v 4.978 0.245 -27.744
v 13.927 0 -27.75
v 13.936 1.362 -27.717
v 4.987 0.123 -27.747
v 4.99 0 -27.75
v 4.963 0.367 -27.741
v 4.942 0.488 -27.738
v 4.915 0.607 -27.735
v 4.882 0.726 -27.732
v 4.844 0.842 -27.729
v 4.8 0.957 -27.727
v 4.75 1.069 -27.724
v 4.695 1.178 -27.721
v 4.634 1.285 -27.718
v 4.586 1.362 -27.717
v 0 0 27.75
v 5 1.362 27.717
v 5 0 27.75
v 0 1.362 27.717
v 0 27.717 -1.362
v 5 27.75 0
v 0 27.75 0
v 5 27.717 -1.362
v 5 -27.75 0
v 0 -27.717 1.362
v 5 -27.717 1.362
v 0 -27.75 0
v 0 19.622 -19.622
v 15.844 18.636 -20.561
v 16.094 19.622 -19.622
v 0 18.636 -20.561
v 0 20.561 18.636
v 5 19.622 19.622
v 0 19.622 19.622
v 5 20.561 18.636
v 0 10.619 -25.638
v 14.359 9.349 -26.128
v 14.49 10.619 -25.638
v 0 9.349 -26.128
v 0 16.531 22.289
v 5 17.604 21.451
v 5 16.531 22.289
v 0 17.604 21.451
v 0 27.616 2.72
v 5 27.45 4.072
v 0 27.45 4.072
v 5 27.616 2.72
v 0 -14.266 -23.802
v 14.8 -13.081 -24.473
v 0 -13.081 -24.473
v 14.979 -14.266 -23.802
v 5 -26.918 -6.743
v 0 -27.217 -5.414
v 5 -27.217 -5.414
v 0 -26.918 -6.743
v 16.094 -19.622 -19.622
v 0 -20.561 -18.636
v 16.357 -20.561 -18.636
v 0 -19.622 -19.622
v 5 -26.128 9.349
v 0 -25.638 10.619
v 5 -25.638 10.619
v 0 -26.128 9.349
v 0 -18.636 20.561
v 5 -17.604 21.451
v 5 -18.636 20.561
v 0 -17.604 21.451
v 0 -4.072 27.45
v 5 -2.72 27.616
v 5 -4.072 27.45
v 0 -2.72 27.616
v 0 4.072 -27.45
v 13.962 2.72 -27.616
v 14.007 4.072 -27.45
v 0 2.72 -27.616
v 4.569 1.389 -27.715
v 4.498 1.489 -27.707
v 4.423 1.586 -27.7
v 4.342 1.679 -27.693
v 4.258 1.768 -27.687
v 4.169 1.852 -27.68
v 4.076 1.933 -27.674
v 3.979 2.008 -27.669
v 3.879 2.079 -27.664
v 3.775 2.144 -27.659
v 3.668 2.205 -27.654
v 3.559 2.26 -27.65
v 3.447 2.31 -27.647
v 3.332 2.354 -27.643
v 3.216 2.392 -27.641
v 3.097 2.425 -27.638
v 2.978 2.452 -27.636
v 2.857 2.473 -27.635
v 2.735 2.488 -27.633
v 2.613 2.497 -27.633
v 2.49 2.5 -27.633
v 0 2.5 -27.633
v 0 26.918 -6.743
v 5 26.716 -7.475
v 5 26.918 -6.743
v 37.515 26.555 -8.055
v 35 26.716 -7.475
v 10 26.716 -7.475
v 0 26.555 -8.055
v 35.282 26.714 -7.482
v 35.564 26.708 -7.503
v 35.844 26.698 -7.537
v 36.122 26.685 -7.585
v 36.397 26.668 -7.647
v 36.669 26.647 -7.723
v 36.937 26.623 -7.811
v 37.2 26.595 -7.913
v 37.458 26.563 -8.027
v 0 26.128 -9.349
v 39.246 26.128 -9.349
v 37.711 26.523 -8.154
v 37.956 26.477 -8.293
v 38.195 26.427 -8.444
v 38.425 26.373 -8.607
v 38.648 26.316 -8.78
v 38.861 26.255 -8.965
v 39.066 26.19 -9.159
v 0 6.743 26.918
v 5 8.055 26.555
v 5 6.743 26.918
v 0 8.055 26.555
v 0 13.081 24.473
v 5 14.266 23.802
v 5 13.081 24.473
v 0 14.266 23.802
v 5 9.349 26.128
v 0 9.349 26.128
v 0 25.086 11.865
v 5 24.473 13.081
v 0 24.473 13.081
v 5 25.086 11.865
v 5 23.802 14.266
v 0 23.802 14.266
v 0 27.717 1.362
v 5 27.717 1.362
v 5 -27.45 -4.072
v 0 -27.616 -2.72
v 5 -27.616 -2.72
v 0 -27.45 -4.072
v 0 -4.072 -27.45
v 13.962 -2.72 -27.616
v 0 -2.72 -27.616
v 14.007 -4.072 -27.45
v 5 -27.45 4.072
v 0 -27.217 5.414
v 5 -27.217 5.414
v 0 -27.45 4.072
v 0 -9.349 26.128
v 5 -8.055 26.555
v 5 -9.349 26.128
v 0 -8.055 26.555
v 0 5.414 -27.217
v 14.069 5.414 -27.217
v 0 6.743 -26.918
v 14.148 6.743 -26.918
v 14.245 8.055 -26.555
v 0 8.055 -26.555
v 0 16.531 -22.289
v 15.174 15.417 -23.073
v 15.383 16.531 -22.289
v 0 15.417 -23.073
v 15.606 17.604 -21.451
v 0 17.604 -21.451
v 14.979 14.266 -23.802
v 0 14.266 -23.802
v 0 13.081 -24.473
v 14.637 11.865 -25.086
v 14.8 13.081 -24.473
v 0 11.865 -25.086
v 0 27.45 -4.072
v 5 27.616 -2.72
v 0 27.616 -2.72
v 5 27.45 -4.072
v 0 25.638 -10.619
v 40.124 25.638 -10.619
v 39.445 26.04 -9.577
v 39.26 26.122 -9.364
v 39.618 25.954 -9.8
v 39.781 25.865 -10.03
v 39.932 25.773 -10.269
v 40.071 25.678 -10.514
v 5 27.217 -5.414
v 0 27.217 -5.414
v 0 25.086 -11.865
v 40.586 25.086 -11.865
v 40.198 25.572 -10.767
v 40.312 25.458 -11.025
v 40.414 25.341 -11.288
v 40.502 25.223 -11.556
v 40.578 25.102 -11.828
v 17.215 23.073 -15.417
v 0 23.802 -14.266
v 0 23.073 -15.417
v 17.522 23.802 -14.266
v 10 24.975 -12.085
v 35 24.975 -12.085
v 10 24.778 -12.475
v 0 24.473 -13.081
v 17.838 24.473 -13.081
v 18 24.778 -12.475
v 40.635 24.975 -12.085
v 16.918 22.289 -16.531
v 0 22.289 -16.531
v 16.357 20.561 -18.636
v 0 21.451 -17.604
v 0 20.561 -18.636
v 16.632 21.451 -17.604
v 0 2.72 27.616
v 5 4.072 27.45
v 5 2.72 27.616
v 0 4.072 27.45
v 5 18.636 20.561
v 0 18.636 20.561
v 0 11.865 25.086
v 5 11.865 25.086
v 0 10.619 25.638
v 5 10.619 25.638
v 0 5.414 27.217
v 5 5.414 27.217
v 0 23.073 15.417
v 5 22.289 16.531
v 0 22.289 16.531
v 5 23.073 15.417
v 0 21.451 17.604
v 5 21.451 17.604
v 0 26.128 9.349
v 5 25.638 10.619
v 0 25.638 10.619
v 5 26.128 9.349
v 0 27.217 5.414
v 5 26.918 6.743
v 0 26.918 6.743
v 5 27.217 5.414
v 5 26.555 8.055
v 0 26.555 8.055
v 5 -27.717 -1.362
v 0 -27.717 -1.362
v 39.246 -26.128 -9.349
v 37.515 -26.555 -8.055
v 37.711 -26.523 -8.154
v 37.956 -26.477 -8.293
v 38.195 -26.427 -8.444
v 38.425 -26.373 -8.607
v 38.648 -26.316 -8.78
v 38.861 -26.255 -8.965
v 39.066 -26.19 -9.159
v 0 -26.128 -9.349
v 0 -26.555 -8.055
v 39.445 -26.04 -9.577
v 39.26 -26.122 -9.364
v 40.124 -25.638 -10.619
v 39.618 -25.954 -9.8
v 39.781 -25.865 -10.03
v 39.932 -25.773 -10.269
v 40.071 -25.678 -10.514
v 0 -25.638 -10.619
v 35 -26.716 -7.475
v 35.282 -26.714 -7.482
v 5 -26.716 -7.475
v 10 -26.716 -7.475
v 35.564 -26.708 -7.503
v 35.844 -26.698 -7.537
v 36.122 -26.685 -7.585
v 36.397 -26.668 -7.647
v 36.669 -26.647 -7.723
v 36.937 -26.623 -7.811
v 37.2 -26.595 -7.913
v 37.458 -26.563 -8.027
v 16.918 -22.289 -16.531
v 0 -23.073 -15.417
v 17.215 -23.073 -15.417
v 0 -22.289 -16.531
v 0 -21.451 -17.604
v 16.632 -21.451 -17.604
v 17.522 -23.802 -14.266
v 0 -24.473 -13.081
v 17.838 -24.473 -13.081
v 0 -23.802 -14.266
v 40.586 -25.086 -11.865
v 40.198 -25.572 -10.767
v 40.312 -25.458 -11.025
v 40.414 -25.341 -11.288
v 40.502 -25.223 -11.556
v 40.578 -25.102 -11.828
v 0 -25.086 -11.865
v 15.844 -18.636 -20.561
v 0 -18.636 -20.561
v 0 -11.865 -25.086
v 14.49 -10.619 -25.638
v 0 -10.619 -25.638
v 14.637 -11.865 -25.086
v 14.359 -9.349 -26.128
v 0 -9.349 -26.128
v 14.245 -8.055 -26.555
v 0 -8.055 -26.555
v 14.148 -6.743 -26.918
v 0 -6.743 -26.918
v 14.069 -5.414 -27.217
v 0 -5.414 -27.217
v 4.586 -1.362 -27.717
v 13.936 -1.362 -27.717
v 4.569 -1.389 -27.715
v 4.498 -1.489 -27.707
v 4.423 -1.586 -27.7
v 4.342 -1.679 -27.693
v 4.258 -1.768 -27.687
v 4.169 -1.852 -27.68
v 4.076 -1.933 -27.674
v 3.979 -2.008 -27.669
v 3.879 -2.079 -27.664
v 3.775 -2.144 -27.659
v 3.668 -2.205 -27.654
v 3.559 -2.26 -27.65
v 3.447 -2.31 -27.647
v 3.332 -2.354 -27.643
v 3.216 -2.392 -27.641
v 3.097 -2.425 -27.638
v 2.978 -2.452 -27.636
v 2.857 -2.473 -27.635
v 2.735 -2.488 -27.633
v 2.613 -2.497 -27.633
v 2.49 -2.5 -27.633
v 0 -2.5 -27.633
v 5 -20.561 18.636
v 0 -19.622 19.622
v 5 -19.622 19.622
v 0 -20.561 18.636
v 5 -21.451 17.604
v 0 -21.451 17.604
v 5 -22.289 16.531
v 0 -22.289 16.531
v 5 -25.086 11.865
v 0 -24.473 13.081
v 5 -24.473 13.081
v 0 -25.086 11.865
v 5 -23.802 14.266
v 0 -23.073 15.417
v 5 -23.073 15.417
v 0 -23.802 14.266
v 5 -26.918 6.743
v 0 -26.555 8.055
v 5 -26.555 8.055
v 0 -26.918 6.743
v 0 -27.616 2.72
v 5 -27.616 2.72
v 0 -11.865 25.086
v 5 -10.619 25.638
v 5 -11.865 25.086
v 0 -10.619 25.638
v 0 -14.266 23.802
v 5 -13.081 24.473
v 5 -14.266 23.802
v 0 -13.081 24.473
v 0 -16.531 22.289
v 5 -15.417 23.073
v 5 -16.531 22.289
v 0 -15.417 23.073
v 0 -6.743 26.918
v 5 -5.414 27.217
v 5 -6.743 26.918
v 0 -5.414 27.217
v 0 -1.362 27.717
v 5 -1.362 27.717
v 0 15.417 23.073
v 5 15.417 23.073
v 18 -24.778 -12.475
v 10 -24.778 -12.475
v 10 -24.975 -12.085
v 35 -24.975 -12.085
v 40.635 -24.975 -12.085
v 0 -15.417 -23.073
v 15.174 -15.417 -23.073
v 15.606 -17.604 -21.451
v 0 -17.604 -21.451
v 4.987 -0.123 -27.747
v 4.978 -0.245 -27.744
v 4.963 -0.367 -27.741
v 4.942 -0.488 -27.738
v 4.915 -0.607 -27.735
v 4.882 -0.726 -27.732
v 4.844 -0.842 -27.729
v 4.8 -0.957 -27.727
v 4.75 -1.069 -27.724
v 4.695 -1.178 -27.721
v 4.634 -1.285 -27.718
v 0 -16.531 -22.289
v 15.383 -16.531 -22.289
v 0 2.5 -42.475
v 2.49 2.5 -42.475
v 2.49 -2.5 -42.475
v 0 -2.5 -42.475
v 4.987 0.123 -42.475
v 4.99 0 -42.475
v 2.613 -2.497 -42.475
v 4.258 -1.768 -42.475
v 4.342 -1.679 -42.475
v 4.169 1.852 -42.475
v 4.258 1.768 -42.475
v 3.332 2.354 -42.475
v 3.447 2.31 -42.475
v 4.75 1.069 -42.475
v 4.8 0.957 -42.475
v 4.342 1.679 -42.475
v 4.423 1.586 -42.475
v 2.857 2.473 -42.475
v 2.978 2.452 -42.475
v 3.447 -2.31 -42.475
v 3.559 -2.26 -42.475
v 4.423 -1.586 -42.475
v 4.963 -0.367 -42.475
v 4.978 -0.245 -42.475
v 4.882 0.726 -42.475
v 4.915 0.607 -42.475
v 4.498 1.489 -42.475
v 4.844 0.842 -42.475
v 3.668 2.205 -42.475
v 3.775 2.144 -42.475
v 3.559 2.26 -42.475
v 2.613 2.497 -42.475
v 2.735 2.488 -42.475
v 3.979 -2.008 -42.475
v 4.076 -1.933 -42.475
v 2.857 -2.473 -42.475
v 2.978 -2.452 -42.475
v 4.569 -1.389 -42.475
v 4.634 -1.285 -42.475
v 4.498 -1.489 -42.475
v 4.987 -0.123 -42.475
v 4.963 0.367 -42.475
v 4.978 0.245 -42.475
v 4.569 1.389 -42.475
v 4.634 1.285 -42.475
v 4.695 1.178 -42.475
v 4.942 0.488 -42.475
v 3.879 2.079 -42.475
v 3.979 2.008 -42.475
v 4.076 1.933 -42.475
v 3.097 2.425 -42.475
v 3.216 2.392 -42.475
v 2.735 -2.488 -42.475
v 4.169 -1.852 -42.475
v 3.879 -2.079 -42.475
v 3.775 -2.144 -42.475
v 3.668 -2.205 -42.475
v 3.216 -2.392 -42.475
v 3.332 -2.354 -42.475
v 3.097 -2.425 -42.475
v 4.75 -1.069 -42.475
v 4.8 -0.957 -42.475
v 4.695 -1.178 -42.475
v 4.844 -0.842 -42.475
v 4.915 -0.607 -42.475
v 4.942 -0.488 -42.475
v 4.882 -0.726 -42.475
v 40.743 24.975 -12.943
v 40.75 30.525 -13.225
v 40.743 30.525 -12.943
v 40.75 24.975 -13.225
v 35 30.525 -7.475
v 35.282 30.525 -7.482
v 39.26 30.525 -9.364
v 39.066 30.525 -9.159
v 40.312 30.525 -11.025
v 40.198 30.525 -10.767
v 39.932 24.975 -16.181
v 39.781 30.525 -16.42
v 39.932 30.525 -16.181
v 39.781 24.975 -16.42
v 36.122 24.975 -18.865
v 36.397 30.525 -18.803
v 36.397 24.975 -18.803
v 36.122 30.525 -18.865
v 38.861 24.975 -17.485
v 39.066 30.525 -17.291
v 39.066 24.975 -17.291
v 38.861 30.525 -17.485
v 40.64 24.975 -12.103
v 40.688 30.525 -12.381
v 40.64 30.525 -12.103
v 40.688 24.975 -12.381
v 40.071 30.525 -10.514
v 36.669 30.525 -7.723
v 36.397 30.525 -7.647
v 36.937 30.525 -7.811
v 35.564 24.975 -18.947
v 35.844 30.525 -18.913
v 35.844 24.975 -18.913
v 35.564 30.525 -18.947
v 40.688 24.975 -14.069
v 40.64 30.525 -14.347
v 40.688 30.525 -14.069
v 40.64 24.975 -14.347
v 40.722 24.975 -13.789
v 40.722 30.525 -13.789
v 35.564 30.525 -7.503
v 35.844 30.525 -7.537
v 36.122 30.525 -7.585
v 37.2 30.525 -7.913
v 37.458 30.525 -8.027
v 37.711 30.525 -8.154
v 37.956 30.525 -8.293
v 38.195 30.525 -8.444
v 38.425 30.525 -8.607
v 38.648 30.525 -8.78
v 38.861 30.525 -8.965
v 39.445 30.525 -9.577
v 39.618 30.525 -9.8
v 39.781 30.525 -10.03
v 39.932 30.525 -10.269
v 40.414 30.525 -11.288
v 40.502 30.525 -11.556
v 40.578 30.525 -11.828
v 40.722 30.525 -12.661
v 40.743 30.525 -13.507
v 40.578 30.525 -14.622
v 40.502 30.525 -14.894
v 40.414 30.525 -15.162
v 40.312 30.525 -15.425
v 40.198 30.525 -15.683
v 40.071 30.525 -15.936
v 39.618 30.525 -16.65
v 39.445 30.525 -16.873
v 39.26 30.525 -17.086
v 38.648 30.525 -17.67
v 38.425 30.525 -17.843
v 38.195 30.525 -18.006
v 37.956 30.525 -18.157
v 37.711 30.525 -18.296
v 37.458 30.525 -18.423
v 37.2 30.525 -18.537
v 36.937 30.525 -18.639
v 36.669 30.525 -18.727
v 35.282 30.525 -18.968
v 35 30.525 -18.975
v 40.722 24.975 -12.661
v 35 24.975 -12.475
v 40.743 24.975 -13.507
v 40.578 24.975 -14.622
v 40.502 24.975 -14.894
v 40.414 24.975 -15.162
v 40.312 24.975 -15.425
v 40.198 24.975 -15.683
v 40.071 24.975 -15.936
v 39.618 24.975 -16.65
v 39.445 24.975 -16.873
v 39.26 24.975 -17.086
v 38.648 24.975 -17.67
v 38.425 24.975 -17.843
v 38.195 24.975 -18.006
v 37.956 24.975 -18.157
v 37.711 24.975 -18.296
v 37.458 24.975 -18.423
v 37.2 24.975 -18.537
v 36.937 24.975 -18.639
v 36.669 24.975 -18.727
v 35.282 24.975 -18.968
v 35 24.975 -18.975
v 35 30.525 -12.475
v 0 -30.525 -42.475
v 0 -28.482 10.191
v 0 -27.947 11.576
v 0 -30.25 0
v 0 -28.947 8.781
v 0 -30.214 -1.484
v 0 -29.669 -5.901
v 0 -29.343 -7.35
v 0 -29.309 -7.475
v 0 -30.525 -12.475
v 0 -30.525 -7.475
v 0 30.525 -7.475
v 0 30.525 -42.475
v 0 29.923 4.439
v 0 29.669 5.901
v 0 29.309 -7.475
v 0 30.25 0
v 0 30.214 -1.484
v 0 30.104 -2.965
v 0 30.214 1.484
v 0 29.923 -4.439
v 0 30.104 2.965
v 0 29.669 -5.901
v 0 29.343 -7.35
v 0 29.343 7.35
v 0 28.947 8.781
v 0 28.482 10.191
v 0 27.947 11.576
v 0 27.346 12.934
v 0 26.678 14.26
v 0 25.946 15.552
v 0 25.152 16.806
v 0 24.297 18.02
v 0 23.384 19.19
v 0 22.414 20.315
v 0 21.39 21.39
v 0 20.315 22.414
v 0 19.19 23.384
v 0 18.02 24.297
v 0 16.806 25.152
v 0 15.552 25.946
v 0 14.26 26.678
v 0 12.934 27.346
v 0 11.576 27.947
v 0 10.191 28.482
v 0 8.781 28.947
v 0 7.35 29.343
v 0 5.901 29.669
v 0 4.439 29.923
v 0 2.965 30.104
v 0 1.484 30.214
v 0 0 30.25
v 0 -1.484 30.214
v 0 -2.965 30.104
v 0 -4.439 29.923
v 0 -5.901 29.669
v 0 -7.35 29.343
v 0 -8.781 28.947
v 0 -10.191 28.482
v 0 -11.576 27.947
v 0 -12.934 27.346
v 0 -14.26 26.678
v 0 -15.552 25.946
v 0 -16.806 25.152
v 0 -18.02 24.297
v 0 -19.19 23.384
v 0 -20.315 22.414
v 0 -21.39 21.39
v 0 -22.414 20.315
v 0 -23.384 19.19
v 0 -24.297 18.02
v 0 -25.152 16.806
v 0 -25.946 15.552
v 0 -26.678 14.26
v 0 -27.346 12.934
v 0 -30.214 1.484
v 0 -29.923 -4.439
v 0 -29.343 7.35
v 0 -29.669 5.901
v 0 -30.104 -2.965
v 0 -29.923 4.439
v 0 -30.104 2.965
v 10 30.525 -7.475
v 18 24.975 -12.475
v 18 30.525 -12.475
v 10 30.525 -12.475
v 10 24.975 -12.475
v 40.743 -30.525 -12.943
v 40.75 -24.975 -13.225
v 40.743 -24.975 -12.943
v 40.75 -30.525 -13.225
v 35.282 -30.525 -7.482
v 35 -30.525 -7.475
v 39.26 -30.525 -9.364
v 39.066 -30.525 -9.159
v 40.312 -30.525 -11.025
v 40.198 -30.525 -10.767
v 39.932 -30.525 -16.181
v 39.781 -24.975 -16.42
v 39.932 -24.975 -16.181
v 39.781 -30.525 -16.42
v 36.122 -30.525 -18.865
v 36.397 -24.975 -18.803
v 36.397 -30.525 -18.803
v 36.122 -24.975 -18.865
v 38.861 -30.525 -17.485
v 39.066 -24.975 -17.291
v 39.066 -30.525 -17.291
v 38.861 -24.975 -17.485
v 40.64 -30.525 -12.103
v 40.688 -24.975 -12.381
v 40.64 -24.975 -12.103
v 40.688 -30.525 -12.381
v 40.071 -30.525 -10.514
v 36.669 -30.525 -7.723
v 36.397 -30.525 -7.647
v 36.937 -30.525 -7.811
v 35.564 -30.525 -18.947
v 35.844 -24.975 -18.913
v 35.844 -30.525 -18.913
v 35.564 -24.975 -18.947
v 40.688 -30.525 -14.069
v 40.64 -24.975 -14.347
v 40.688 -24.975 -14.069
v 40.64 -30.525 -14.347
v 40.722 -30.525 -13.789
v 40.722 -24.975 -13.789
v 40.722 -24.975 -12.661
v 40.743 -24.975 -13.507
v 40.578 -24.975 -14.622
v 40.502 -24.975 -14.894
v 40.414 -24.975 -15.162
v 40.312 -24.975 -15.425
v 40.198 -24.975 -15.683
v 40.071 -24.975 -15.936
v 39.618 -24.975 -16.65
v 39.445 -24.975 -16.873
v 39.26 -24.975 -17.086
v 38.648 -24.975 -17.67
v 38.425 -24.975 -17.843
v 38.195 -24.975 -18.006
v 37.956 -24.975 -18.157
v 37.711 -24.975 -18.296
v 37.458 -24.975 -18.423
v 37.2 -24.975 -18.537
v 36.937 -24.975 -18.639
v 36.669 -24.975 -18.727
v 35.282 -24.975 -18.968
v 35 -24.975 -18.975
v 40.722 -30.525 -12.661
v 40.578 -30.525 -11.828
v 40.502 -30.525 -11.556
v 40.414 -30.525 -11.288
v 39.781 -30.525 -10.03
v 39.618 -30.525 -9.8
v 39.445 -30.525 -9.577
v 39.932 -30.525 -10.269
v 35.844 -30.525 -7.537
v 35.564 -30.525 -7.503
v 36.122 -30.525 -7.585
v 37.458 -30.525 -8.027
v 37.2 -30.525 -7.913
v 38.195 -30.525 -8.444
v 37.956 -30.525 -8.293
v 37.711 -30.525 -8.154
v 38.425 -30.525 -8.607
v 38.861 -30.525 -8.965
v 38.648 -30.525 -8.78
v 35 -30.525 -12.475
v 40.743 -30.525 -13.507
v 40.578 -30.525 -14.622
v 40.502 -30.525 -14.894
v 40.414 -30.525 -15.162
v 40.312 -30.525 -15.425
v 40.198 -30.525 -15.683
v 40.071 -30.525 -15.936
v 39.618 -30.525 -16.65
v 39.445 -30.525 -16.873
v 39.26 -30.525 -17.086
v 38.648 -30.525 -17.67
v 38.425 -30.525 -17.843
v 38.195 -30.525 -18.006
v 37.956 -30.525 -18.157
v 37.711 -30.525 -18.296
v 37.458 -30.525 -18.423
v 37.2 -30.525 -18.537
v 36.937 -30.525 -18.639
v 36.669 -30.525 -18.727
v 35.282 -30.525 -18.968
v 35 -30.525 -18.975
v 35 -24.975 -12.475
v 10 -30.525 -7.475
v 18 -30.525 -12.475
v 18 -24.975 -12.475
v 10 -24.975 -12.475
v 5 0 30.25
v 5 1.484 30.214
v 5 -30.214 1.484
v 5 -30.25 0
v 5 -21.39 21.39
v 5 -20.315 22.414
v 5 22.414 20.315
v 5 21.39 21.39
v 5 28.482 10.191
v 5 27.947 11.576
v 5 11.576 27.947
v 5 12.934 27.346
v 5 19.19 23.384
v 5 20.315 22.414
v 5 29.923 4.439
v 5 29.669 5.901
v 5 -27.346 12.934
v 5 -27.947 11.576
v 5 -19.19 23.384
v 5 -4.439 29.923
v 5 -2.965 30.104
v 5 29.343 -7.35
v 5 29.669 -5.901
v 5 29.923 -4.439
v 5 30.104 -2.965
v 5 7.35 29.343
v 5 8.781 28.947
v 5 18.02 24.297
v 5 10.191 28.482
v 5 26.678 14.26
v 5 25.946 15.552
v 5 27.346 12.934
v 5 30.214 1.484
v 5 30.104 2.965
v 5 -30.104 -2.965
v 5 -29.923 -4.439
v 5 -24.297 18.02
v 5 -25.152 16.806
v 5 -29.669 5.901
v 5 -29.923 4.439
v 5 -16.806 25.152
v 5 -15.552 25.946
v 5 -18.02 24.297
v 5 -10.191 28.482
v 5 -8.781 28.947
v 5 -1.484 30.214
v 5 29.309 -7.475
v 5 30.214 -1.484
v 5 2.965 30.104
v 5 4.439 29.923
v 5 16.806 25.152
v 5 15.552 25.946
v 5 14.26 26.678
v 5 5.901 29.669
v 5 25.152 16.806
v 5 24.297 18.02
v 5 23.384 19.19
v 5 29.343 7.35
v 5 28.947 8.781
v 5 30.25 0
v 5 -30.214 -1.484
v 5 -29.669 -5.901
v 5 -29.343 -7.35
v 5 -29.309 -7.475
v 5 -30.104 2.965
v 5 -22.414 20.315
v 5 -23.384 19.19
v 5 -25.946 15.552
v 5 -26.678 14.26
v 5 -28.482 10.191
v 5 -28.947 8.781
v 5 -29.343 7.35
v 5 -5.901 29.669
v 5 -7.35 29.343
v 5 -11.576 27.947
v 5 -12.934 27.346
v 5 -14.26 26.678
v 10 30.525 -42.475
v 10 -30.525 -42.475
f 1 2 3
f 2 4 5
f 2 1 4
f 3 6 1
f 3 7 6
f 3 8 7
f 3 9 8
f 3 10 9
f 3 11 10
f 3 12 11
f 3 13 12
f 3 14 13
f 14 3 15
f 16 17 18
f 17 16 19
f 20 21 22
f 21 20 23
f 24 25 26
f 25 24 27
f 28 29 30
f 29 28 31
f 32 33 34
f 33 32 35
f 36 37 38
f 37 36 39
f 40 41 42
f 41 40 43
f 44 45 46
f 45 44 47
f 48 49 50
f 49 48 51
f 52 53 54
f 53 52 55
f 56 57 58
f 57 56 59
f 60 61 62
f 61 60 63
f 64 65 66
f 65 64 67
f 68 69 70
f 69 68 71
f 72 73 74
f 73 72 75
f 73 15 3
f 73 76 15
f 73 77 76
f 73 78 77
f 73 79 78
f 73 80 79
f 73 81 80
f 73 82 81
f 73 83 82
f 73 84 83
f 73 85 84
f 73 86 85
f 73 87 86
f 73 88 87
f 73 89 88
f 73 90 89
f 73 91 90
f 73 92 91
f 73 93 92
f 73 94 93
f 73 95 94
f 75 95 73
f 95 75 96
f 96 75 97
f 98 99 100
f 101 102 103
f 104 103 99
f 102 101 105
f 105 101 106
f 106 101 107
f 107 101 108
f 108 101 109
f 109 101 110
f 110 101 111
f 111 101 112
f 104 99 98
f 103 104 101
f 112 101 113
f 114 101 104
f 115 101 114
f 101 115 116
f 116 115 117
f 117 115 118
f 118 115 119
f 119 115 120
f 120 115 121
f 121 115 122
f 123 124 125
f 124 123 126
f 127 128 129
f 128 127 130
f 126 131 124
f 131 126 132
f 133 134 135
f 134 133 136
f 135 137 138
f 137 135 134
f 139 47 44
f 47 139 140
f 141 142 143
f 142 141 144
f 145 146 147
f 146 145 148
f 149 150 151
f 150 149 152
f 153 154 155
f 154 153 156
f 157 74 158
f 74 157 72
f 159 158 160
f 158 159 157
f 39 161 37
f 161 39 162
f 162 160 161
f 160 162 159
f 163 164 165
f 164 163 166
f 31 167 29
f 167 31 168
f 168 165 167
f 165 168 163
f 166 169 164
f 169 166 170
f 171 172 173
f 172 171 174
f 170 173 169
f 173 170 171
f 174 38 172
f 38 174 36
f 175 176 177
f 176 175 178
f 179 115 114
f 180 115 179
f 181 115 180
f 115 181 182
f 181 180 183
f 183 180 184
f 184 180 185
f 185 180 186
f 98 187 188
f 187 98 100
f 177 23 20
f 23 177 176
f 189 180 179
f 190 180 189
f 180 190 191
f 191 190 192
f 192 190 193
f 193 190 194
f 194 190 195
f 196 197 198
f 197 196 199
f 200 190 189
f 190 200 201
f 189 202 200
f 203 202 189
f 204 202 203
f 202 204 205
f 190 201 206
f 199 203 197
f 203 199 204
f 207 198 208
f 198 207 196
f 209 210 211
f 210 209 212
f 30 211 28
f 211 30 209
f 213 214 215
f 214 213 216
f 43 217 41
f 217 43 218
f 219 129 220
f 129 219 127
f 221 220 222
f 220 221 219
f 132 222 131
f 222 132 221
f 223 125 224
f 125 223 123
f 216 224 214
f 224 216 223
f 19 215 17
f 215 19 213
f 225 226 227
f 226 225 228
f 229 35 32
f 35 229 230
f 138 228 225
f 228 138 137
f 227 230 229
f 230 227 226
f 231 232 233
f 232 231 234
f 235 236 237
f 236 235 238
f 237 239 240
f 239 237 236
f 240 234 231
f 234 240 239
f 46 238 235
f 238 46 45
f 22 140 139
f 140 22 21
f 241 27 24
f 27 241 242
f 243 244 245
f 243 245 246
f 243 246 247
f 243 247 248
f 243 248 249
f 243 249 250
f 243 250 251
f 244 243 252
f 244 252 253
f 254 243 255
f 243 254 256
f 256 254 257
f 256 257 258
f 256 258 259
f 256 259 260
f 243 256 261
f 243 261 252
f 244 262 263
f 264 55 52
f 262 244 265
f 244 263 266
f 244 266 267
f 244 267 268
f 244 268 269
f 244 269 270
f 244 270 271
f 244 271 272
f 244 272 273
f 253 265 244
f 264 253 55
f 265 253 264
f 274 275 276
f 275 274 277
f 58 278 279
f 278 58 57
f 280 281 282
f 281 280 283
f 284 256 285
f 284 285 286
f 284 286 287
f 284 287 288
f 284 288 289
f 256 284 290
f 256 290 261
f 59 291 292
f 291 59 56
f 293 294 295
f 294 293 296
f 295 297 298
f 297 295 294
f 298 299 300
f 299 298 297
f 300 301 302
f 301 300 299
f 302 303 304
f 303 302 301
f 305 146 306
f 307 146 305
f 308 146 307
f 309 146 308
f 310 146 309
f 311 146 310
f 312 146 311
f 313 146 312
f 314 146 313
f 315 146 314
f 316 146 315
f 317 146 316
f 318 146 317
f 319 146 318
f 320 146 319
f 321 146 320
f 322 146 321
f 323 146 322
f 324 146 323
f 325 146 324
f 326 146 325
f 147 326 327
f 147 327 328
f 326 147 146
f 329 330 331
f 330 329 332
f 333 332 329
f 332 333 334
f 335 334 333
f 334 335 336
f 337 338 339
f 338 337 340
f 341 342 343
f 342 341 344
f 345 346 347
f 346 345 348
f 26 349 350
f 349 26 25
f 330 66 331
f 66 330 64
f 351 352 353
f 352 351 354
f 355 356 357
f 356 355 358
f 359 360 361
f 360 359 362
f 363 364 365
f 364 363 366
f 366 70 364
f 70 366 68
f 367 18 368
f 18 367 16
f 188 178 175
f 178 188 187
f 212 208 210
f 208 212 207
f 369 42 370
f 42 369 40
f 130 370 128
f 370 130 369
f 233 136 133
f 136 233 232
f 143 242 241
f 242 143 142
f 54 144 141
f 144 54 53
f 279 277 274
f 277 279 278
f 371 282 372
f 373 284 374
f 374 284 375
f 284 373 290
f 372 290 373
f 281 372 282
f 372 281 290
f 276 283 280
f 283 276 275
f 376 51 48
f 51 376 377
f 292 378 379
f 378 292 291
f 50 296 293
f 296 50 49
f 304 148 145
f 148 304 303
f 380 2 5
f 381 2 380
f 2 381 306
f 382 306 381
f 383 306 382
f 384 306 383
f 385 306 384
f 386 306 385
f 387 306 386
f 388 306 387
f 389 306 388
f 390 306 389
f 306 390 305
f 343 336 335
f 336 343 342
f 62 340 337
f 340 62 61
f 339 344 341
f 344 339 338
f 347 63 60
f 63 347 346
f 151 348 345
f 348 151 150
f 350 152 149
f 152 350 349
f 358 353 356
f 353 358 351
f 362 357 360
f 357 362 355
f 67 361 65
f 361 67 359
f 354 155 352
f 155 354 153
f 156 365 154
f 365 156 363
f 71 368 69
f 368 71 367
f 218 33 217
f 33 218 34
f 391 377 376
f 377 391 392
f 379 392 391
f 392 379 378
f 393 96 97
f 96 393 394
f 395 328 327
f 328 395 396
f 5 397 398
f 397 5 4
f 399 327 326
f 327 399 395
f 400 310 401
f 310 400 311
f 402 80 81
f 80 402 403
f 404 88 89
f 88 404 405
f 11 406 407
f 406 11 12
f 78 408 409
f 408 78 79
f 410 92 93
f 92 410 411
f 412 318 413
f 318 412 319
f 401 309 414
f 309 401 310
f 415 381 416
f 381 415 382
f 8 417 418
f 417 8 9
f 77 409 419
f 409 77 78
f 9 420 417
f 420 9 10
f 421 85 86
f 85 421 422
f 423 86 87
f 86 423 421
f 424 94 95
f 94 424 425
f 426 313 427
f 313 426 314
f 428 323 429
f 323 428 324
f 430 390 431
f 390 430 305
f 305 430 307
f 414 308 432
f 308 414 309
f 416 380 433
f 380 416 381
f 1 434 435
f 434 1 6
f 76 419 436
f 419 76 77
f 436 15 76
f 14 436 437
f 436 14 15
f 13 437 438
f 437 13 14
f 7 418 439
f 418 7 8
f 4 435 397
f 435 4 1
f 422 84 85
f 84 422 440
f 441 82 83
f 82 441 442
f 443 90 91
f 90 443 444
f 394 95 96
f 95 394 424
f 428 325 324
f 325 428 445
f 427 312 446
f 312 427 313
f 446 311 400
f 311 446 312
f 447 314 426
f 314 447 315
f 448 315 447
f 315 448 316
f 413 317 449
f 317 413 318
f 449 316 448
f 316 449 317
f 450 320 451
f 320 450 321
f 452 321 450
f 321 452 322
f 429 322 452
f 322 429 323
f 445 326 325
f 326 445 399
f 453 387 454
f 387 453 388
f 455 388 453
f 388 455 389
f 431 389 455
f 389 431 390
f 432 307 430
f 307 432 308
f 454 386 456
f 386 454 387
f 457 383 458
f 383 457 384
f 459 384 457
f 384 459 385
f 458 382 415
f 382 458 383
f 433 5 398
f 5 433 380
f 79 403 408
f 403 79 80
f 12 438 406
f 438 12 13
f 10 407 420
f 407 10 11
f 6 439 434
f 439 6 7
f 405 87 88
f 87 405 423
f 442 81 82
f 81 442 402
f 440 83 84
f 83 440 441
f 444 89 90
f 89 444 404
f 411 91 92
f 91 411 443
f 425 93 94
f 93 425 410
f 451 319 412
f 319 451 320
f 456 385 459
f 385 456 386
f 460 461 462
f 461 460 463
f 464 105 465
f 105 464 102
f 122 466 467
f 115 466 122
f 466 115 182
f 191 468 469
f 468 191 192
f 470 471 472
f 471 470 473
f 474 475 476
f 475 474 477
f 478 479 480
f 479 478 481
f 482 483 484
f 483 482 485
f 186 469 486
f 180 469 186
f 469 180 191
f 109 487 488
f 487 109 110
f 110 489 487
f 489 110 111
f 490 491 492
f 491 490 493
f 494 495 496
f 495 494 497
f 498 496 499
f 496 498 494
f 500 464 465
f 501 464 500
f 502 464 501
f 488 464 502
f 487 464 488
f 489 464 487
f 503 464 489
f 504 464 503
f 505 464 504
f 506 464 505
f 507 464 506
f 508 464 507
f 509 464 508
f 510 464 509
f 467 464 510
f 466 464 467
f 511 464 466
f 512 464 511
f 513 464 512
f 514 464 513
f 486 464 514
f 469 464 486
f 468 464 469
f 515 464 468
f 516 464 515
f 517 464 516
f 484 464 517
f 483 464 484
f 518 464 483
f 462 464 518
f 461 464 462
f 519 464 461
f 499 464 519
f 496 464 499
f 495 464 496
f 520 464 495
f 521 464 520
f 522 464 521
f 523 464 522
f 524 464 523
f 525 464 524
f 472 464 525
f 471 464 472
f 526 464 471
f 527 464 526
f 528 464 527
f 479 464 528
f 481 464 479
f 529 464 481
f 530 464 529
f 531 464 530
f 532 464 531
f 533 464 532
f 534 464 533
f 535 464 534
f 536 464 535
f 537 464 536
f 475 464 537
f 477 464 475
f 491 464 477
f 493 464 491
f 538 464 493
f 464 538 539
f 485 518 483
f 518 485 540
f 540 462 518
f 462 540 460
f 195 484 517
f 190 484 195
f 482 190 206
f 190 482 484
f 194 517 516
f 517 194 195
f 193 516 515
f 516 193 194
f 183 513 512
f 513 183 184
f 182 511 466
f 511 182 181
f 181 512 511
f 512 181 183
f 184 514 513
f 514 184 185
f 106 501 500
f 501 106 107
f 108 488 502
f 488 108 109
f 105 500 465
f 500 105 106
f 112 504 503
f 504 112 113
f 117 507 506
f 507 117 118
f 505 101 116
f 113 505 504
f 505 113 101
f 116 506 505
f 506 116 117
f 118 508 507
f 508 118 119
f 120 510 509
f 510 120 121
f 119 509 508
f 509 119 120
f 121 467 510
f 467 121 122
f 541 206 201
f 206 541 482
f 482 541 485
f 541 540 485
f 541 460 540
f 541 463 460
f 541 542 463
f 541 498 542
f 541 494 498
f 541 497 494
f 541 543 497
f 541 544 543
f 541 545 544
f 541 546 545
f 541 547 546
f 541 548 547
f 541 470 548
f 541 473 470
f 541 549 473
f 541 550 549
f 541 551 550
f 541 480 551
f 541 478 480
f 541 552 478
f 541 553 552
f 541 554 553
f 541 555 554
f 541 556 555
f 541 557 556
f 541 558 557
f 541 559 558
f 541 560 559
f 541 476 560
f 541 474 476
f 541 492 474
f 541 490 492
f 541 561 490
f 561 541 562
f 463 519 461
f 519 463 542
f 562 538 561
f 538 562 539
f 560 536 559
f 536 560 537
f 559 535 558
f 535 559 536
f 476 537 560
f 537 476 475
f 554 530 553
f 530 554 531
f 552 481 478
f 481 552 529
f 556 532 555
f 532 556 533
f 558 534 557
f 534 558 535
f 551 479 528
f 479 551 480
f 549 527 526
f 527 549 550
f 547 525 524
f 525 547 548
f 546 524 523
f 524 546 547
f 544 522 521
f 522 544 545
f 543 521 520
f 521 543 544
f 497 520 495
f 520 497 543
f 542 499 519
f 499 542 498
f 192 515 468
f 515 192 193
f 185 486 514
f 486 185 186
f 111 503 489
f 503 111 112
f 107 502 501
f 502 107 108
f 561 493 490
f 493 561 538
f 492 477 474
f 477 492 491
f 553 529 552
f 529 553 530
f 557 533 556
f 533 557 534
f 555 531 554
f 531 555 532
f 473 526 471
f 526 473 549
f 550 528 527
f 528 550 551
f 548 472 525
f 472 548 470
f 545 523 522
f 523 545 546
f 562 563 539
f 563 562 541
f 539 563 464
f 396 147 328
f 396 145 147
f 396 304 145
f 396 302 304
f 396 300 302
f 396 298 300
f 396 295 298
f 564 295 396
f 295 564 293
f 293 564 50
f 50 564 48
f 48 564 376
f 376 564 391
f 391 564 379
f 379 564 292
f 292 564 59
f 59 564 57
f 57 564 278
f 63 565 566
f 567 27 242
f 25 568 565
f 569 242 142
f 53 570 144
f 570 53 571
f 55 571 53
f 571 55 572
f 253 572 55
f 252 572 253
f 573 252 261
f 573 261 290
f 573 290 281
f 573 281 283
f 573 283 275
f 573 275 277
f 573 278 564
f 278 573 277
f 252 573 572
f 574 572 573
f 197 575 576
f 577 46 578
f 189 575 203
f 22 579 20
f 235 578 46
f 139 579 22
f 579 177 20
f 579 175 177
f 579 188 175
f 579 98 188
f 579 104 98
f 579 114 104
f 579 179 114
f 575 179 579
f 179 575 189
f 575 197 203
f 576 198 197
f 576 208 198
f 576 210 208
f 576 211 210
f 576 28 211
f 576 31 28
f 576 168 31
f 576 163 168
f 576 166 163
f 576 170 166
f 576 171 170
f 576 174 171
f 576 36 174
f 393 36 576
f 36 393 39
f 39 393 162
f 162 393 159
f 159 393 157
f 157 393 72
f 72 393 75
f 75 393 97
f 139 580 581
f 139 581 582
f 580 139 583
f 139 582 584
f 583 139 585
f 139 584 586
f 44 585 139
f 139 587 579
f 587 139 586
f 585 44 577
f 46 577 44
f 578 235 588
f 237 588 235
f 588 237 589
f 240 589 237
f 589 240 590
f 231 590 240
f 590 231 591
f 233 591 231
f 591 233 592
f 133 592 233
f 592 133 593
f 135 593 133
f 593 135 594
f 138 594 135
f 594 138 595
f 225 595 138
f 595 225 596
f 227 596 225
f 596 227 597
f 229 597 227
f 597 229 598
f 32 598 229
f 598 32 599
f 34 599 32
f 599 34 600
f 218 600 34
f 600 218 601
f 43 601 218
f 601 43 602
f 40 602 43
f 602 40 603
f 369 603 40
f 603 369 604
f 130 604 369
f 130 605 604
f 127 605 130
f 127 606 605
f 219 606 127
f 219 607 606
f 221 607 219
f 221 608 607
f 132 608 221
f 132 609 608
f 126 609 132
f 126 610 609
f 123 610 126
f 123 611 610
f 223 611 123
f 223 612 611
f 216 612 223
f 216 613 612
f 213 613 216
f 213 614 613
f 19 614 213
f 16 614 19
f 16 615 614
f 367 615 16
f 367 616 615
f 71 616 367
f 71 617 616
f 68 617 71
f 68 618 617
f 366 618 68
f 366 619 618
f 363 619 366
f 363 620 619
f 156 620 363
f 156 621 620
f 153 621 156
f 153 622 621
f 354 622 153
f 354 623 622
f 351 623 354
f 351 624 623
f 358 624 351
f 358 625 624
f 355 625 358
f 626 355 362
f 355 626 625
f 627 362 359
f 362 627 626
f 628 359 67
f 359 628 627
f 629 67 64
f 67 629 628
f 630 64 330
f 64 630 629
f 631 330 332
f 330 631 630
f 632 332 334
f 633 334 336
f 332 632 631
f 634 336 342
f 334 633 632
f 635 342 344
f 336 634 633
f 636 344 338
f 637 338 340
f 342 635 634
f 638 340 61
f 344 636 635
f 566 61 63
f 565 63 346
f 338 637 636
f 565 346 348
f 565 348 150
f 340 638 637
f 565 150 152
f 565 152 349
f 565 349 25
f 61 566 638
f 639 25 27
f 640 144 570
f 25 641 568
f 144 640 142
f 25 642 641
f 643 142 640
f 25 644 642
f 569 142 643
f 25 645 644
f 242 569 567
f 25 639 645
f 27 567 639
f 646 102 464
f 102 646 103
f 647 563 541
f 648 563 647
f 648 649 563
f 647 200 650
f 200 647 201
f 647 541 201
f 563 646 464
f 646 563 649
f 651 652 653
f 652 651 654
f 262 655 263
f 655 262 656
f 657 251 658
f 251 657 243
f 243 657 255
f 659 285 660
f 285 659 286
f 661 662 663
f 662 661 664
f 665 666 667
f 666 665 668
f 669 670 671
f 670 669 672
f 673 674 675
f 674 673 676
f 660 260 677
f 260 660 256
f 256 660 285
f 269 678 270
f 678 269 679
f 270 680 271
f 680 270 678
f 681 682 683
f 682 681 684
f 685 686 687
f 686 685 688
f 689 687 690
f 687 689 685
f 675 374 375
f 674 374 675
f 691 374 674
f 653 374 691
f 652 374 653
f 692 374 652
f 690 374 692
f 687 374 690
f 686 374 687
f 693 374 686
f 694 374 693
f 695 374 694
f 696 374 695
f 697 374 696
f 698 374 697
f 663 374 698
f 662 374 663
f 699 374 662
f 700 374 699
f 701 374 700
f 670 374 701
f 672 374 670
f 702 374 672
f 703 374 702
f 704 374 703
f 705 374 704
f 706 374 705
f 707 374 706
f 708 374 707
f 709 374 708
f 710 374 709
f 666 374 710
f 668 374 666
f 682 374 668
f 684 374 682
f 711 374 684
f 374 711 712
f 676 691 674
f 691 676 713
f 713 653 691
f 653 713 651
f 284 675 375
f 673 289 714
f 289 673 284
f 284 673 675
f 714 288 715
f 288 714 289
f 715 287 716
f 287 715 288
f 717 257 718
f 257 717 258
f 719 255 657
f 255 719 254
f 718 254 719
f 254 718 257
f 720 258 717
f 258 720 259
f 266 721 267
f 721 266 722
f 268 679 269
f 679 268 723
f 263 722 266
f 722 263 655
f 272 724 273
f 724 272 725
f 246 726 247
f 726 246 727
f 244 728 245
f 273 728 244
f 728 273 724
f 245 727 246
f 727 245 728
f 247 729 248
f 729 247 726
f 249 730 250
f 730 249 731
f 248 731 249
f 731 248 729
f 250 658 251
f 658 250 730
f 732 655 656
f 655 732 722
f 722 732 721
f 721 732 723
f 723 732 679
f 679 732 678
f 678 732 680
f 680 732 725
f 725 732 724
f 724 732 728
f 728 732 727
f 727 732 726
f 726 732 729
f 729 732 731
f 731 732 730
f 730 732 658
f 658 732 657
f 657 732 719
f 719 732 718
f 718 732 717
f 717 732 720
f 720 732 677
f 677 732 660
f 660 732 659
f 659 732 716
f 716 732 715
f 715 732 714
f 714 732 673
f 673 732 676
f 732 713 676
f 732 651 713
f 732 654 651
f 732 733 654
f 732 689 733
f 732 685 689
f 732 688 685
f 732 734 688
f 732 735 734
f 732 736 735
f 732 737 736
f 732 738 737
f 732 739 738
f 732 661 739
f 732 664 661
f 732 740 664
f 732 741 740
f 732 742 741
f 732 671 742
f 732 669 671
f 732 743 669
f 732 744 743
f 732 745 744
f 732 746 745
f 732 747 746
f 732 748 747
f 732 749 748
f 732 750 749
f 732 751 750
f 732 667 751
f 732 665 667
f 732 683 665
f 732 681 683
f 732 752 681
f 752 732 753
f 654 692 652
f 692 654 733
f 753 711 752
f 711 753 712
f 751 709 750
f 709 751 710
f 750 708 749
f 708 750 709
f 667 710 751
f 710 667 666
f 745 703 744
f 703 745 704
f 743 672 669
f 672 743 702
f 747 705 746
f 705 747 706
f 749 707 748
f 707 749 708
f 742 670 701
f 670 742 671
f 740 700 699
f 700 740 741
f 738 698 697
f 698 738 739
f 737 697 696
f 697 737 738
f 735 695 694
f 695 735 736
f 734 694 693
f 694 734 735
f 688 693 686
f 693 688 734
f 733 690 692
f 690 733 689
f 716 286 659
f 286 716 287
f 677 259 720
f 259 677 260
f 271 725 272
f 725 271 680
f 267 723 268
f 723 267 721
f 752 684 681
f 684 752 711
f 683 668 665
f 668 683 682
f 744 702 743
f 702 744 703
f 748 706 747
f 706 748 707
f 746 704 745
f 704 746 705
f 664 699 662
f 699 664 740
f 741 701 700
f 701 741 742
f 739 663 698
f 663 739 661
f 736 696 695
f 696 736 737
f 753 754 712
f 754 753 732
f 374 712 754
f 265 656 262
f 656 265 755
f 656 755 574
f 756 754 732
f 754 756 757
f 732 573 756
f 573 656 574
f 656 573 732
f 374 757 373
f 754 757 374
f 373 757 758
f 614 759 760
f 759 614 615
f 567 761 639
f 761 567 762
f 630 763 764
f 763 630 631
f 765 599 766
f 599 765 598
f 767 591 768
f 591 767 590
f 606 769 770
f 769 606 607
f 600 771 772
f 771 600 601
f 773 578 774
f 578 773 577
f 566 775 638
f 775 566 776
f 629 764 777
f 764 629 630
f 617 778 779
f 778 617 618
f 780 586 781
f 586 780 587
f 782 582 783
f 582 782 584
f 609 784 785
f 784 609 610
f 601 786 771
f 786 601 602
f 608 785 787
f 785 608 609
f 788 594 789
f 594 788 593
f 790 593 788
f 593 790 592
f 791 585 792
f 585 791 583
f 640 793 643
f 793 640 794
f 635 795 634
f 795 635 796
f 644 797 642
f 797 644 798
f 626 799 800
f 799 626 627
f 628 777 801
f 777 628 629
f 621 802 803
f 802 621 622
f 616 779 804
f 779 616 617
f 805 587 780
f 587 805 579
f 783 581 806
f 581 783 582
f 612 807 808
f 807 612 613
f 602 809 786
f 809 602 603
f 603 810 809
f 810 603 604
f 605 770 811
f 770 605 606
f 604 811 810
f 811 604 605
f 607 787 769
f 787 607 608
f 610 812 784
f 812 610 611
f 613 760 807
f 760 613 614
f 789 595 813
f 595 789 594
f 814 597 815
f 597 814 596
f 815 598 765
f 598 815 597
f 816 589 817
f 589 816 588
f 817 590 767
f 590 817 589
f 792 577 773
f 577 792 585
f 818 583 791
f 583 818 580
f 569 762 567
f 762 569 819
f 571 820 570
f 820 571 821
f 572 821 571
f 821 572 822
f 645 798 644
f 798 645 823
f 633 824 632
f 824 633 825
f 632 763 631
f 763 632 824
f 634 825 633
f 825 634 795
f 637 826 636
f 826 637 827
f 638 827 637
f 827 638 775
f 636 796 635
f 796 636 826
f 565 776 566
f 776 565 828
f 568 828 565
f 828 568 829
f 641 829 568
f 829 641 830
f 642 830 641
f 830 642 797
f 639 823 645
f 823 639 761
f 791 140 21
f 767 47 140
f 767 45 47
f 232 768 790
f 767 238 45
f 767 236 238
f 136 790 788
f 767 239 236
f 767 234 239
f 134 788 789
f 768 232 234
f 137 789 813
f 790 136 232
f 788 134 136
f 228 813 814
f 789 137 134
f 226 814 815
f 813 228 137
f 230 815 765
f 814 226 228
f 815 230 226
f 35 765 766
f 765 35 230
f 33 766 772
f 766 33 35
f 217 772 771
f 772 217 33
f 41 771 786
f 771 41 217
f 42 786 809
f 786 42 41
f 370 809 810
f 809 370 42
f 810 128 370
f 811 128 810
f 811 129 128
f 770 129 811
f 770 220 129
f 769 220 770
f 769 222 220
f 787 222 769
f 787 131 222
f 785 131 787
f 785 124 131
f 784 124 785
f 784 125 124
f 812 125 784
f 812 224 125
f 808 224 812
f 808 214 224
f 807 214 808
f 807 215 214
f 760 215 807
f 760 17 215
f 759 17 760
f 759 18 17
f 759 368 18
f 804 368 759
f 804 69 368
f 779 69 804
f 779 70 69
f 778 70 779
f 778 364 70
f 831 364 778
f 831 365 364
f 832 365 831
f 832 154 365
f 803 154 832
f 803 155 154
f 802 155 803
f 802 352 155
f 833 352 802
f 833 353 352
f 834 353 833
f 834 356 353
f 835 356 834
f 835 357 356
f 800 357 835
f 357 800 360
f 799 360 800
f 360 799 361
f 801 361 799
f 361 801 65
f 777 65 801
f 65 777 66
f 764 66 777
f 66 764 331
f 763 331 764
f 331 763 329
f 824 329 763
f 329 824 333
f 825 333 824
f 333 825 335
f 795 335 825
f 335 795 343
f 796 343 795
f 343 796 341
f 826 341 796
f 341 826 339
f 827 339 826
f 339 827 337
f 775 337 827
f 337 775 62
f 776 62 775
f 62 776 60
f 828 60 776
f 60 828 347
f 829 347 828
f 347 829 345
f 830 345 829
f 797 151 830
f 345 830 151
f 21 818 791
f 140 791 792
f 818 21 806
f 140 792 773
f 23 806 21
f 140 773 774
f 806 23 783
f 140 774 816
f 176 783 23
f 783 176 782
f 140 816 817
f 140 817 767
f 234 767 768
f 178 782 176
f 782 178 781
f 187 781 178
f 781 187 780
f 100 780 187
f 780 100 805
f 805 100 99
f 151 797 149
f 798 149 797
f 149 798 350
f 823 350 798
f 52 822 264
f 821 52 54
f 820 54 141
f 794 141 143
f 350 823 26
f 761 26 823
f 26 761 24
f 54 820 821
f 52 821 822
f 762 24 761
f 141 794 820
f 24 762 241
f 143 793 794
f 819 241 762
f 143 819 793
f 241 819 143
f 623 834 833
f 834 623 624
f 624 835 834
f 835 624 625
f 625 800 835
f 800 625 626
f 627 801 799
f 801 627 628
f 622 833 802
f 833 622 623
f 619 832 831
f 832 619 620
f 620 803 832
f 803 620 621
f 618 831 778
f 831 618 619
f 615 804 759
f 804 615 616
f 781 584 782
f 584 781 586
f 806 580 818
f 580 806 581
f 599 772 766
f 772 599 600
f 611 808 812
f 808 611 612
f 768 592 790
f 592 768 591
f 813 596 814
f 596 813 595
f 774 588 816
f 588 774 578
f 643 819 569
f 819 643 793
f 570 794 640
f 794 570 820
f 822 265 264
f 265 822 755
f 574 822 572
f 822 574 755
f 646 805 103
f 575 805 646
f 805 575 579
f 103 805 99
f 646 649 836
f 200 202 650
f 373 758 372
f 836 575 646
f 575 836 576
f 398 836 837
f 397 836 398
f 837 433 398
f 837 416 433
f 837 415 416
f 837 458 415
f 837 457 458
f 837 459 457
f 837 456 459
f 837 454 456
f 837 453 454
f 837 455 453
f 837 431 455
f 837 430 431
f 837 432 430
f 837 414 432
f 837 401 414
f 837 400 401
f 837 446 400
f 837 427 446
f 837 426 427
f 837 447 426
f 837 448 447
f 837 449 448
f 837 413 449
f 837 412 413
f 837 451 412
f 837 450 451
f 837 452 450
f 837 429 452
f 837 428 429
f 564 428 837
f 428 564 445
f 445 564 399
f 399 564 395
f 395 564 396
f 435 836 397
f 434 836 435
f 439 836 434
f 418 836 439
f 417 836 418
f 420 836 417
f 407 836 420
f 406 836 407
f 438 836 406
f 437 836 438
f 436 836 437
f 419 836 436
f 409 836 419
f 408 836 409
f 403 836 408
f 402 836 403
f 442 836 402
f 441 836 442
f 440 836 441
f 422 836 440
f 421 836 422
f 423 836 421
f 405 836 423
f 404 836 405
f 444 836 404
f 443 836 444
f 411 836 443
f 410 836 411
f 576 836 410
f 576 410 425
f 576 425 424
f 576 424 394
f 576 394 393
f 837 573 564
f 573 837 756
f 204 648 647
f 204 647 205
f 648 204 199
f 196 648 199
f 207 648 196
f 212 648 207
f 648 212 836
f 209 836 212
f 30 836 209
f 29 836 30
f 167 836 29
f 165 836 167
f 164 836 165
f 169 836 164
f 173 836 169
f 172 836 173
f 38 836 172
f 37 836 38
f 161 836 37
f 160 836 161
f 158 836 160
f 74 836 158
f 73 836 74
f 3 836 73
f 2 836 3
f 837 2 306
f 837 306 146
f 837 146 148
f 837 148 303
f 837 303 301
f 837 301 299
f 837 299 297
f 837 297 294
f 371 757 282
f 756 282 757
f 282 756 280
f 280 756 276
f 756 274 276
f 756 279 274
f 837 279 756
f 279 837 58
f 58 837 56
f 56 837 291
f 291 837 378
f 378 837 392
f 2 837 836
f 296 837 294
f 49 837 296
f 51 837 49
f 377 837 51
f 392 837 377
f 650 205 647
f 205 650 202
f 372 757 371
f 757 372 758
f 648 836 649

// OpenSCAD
// iPhone Camera Bracket Thingy
// By Matthew Carlson

// All dimensions are in mm
MAGSAFE_WIDTH = 55.5; // how width the magsafe puck is
MAGSAFE_DEPTH = 5; // how deep the ring around the magsafe is (towards the phone)
CORD_THICKNESS = 5; // how thick the magsafe cord is
RING_THICKNESS = 5; // how thick the ring around the magsafe is
EPSILON = 0.01; 
BODY_HEIGHT = 35; // how tall the bottom body is
ARM_LENGTH = 35; // how long the arms are (total)
ARM_THICKNESS = 5; // how thick each arm is
ARM_PERCH_LENGTH = 17; // how long the perch of the arm as (this should be how big the flat part of your monitor is)
HAND_DEPTH = 6.5; // how far down the hand of the arm hangs down from the perch
BOTTOM_THICKNESS_FACTOR = 2.0; // how thick the bottom is relative to the ring depth
BODY_WIDTH_FACTOR = 1.1; // how wide the bottom body is relative to the magsafe width

$fn = 128; // turn this down to a lower number if your computer is struggling

// computed
body_width = MAGSAFE_WIDTH * BODY_WIDTH_FACTOR;
body_gap = 0.45 * MAGSAFE_WIDTH;
body_bottom_thickness = MAGSAFE_DEPTH * BOTTOM_THICKNESS_FACTOR;
arm_width = body_width - MAGSAFE_WIDTH;

module halfCylinder(h,r) {
  intersection() {
    cylinder(h=h,r=r);
    translate([0,-r,0]) cube([r,2*r,h]);
  }
}

module arcCylinder(h,r,angle) {
  if (angle > 180) {
    union() {
      halfCylinder(h,r);
      rotate([0,0,angle-180]) halfCylinder(h,r);
    }
  } else {
    intersection() {
      halfCylinder(h,r);
      rotate([0,0,angle-180]) halfCylinder(h,r);
    }
  }
}

// https://en.m.wikibooks.org/wiki/OpenSCAD_User_Manual/Primitive_Solids
module prism(l, w, h){
  polyhedron(//pt 0        1        2        3        4        5
          points=[[0,0,0], [l,0,0], [l,w,0], [0,w,0], [0,w,h], [l,w,h]],
          faces=[[0,1,2,3],[5,4,3,2],[0,4,5,1],[0,3,4],[5,2,1]]
          );
}


module magsafe_loop(){
    loop_outer_radius = (MAGSAFE_WIDTH + RING_THICKNESS) / 2;
    rotate([0,90,0]) cylinder(MAGSAFE_DEPTH, loop_outer_radius, loop_outer_radius);
}

module magsafe_void() {
    loop_inner_radius = (MAGSAFE_WIDTH) / 2;
    cord_length = 50;
    rotate([0,90,0]) translate([0,0,-EPSILON]) union() {
        translate([0,0,-MAGSAFE_DEPTH*10]) cylinder(MAGSAFE_DEPTH*20, loop_inner_radius, loop_inner_radius);
        translate([loop_inner_radius,0,0]) cube([cord_length, CORD_THICKNESS, CORD_THICKNESS], center=true);
        translate([loop_inner_radius,0,CORD_THICKNESS/2]) rotate([0,90,0]) cylinder(cord_length, CORD_THICKNESS/2, CORD_THICKNESS/2, center=true);
        
    }
}

module body_arm() {
    total_hand = HAND_DEPTH + ARM_THICKNESS;
    hand_offset = ARM_THICKNESS - (total_hand/2); //-ARM_THICKNESS;
    union() {
        cube([ARM_LENGTH,arm_width,ARM_THICKNESS]);
        translate([ARM_LENGTH, arm_width, hand_offset]) rotate([90,0,0]) halfCylinder(arm_width, total_hand / 2);
    }
}

module main_body() {
    union() {
        magsafe_loop();
        // the underside of the body
        translate([0,-body_width/2,-BODY_HEIGHT/2 - body_gap]) cube([body_bottom_thickness, body_width, BODY_HEIGHT]);
        // arms
        translate([0,body_width/2-arm_width,BODY_HEIGHT/2 - body_gap - ARM_THICKNESS]) body_arm();
        translate([0,body_width/2-body_width,BODY_HEIGHT/2 - body_gap - ARM_THICKNESS]) body_arm();
        
        translate([body_bottom_thickness,-body_width/2,-BODY_HEIGHT/2 - body_gap]) rotate([90,0,90]) prism(body_width,BODY_HEIGHT-ARM_THICKNESS,ARM_LENGTH-body_bottom_thickness-ARM_PERCH_LENGTH);
    }
}

//translate([0,MAGSAFE_WIDTH* 1.4,0]) magsafe_void();
//translate([0,- MAGSAFE_WIDTH * 1.4,0]) main_body();
difference() {
    main_body();
    magsafe_void();
}
